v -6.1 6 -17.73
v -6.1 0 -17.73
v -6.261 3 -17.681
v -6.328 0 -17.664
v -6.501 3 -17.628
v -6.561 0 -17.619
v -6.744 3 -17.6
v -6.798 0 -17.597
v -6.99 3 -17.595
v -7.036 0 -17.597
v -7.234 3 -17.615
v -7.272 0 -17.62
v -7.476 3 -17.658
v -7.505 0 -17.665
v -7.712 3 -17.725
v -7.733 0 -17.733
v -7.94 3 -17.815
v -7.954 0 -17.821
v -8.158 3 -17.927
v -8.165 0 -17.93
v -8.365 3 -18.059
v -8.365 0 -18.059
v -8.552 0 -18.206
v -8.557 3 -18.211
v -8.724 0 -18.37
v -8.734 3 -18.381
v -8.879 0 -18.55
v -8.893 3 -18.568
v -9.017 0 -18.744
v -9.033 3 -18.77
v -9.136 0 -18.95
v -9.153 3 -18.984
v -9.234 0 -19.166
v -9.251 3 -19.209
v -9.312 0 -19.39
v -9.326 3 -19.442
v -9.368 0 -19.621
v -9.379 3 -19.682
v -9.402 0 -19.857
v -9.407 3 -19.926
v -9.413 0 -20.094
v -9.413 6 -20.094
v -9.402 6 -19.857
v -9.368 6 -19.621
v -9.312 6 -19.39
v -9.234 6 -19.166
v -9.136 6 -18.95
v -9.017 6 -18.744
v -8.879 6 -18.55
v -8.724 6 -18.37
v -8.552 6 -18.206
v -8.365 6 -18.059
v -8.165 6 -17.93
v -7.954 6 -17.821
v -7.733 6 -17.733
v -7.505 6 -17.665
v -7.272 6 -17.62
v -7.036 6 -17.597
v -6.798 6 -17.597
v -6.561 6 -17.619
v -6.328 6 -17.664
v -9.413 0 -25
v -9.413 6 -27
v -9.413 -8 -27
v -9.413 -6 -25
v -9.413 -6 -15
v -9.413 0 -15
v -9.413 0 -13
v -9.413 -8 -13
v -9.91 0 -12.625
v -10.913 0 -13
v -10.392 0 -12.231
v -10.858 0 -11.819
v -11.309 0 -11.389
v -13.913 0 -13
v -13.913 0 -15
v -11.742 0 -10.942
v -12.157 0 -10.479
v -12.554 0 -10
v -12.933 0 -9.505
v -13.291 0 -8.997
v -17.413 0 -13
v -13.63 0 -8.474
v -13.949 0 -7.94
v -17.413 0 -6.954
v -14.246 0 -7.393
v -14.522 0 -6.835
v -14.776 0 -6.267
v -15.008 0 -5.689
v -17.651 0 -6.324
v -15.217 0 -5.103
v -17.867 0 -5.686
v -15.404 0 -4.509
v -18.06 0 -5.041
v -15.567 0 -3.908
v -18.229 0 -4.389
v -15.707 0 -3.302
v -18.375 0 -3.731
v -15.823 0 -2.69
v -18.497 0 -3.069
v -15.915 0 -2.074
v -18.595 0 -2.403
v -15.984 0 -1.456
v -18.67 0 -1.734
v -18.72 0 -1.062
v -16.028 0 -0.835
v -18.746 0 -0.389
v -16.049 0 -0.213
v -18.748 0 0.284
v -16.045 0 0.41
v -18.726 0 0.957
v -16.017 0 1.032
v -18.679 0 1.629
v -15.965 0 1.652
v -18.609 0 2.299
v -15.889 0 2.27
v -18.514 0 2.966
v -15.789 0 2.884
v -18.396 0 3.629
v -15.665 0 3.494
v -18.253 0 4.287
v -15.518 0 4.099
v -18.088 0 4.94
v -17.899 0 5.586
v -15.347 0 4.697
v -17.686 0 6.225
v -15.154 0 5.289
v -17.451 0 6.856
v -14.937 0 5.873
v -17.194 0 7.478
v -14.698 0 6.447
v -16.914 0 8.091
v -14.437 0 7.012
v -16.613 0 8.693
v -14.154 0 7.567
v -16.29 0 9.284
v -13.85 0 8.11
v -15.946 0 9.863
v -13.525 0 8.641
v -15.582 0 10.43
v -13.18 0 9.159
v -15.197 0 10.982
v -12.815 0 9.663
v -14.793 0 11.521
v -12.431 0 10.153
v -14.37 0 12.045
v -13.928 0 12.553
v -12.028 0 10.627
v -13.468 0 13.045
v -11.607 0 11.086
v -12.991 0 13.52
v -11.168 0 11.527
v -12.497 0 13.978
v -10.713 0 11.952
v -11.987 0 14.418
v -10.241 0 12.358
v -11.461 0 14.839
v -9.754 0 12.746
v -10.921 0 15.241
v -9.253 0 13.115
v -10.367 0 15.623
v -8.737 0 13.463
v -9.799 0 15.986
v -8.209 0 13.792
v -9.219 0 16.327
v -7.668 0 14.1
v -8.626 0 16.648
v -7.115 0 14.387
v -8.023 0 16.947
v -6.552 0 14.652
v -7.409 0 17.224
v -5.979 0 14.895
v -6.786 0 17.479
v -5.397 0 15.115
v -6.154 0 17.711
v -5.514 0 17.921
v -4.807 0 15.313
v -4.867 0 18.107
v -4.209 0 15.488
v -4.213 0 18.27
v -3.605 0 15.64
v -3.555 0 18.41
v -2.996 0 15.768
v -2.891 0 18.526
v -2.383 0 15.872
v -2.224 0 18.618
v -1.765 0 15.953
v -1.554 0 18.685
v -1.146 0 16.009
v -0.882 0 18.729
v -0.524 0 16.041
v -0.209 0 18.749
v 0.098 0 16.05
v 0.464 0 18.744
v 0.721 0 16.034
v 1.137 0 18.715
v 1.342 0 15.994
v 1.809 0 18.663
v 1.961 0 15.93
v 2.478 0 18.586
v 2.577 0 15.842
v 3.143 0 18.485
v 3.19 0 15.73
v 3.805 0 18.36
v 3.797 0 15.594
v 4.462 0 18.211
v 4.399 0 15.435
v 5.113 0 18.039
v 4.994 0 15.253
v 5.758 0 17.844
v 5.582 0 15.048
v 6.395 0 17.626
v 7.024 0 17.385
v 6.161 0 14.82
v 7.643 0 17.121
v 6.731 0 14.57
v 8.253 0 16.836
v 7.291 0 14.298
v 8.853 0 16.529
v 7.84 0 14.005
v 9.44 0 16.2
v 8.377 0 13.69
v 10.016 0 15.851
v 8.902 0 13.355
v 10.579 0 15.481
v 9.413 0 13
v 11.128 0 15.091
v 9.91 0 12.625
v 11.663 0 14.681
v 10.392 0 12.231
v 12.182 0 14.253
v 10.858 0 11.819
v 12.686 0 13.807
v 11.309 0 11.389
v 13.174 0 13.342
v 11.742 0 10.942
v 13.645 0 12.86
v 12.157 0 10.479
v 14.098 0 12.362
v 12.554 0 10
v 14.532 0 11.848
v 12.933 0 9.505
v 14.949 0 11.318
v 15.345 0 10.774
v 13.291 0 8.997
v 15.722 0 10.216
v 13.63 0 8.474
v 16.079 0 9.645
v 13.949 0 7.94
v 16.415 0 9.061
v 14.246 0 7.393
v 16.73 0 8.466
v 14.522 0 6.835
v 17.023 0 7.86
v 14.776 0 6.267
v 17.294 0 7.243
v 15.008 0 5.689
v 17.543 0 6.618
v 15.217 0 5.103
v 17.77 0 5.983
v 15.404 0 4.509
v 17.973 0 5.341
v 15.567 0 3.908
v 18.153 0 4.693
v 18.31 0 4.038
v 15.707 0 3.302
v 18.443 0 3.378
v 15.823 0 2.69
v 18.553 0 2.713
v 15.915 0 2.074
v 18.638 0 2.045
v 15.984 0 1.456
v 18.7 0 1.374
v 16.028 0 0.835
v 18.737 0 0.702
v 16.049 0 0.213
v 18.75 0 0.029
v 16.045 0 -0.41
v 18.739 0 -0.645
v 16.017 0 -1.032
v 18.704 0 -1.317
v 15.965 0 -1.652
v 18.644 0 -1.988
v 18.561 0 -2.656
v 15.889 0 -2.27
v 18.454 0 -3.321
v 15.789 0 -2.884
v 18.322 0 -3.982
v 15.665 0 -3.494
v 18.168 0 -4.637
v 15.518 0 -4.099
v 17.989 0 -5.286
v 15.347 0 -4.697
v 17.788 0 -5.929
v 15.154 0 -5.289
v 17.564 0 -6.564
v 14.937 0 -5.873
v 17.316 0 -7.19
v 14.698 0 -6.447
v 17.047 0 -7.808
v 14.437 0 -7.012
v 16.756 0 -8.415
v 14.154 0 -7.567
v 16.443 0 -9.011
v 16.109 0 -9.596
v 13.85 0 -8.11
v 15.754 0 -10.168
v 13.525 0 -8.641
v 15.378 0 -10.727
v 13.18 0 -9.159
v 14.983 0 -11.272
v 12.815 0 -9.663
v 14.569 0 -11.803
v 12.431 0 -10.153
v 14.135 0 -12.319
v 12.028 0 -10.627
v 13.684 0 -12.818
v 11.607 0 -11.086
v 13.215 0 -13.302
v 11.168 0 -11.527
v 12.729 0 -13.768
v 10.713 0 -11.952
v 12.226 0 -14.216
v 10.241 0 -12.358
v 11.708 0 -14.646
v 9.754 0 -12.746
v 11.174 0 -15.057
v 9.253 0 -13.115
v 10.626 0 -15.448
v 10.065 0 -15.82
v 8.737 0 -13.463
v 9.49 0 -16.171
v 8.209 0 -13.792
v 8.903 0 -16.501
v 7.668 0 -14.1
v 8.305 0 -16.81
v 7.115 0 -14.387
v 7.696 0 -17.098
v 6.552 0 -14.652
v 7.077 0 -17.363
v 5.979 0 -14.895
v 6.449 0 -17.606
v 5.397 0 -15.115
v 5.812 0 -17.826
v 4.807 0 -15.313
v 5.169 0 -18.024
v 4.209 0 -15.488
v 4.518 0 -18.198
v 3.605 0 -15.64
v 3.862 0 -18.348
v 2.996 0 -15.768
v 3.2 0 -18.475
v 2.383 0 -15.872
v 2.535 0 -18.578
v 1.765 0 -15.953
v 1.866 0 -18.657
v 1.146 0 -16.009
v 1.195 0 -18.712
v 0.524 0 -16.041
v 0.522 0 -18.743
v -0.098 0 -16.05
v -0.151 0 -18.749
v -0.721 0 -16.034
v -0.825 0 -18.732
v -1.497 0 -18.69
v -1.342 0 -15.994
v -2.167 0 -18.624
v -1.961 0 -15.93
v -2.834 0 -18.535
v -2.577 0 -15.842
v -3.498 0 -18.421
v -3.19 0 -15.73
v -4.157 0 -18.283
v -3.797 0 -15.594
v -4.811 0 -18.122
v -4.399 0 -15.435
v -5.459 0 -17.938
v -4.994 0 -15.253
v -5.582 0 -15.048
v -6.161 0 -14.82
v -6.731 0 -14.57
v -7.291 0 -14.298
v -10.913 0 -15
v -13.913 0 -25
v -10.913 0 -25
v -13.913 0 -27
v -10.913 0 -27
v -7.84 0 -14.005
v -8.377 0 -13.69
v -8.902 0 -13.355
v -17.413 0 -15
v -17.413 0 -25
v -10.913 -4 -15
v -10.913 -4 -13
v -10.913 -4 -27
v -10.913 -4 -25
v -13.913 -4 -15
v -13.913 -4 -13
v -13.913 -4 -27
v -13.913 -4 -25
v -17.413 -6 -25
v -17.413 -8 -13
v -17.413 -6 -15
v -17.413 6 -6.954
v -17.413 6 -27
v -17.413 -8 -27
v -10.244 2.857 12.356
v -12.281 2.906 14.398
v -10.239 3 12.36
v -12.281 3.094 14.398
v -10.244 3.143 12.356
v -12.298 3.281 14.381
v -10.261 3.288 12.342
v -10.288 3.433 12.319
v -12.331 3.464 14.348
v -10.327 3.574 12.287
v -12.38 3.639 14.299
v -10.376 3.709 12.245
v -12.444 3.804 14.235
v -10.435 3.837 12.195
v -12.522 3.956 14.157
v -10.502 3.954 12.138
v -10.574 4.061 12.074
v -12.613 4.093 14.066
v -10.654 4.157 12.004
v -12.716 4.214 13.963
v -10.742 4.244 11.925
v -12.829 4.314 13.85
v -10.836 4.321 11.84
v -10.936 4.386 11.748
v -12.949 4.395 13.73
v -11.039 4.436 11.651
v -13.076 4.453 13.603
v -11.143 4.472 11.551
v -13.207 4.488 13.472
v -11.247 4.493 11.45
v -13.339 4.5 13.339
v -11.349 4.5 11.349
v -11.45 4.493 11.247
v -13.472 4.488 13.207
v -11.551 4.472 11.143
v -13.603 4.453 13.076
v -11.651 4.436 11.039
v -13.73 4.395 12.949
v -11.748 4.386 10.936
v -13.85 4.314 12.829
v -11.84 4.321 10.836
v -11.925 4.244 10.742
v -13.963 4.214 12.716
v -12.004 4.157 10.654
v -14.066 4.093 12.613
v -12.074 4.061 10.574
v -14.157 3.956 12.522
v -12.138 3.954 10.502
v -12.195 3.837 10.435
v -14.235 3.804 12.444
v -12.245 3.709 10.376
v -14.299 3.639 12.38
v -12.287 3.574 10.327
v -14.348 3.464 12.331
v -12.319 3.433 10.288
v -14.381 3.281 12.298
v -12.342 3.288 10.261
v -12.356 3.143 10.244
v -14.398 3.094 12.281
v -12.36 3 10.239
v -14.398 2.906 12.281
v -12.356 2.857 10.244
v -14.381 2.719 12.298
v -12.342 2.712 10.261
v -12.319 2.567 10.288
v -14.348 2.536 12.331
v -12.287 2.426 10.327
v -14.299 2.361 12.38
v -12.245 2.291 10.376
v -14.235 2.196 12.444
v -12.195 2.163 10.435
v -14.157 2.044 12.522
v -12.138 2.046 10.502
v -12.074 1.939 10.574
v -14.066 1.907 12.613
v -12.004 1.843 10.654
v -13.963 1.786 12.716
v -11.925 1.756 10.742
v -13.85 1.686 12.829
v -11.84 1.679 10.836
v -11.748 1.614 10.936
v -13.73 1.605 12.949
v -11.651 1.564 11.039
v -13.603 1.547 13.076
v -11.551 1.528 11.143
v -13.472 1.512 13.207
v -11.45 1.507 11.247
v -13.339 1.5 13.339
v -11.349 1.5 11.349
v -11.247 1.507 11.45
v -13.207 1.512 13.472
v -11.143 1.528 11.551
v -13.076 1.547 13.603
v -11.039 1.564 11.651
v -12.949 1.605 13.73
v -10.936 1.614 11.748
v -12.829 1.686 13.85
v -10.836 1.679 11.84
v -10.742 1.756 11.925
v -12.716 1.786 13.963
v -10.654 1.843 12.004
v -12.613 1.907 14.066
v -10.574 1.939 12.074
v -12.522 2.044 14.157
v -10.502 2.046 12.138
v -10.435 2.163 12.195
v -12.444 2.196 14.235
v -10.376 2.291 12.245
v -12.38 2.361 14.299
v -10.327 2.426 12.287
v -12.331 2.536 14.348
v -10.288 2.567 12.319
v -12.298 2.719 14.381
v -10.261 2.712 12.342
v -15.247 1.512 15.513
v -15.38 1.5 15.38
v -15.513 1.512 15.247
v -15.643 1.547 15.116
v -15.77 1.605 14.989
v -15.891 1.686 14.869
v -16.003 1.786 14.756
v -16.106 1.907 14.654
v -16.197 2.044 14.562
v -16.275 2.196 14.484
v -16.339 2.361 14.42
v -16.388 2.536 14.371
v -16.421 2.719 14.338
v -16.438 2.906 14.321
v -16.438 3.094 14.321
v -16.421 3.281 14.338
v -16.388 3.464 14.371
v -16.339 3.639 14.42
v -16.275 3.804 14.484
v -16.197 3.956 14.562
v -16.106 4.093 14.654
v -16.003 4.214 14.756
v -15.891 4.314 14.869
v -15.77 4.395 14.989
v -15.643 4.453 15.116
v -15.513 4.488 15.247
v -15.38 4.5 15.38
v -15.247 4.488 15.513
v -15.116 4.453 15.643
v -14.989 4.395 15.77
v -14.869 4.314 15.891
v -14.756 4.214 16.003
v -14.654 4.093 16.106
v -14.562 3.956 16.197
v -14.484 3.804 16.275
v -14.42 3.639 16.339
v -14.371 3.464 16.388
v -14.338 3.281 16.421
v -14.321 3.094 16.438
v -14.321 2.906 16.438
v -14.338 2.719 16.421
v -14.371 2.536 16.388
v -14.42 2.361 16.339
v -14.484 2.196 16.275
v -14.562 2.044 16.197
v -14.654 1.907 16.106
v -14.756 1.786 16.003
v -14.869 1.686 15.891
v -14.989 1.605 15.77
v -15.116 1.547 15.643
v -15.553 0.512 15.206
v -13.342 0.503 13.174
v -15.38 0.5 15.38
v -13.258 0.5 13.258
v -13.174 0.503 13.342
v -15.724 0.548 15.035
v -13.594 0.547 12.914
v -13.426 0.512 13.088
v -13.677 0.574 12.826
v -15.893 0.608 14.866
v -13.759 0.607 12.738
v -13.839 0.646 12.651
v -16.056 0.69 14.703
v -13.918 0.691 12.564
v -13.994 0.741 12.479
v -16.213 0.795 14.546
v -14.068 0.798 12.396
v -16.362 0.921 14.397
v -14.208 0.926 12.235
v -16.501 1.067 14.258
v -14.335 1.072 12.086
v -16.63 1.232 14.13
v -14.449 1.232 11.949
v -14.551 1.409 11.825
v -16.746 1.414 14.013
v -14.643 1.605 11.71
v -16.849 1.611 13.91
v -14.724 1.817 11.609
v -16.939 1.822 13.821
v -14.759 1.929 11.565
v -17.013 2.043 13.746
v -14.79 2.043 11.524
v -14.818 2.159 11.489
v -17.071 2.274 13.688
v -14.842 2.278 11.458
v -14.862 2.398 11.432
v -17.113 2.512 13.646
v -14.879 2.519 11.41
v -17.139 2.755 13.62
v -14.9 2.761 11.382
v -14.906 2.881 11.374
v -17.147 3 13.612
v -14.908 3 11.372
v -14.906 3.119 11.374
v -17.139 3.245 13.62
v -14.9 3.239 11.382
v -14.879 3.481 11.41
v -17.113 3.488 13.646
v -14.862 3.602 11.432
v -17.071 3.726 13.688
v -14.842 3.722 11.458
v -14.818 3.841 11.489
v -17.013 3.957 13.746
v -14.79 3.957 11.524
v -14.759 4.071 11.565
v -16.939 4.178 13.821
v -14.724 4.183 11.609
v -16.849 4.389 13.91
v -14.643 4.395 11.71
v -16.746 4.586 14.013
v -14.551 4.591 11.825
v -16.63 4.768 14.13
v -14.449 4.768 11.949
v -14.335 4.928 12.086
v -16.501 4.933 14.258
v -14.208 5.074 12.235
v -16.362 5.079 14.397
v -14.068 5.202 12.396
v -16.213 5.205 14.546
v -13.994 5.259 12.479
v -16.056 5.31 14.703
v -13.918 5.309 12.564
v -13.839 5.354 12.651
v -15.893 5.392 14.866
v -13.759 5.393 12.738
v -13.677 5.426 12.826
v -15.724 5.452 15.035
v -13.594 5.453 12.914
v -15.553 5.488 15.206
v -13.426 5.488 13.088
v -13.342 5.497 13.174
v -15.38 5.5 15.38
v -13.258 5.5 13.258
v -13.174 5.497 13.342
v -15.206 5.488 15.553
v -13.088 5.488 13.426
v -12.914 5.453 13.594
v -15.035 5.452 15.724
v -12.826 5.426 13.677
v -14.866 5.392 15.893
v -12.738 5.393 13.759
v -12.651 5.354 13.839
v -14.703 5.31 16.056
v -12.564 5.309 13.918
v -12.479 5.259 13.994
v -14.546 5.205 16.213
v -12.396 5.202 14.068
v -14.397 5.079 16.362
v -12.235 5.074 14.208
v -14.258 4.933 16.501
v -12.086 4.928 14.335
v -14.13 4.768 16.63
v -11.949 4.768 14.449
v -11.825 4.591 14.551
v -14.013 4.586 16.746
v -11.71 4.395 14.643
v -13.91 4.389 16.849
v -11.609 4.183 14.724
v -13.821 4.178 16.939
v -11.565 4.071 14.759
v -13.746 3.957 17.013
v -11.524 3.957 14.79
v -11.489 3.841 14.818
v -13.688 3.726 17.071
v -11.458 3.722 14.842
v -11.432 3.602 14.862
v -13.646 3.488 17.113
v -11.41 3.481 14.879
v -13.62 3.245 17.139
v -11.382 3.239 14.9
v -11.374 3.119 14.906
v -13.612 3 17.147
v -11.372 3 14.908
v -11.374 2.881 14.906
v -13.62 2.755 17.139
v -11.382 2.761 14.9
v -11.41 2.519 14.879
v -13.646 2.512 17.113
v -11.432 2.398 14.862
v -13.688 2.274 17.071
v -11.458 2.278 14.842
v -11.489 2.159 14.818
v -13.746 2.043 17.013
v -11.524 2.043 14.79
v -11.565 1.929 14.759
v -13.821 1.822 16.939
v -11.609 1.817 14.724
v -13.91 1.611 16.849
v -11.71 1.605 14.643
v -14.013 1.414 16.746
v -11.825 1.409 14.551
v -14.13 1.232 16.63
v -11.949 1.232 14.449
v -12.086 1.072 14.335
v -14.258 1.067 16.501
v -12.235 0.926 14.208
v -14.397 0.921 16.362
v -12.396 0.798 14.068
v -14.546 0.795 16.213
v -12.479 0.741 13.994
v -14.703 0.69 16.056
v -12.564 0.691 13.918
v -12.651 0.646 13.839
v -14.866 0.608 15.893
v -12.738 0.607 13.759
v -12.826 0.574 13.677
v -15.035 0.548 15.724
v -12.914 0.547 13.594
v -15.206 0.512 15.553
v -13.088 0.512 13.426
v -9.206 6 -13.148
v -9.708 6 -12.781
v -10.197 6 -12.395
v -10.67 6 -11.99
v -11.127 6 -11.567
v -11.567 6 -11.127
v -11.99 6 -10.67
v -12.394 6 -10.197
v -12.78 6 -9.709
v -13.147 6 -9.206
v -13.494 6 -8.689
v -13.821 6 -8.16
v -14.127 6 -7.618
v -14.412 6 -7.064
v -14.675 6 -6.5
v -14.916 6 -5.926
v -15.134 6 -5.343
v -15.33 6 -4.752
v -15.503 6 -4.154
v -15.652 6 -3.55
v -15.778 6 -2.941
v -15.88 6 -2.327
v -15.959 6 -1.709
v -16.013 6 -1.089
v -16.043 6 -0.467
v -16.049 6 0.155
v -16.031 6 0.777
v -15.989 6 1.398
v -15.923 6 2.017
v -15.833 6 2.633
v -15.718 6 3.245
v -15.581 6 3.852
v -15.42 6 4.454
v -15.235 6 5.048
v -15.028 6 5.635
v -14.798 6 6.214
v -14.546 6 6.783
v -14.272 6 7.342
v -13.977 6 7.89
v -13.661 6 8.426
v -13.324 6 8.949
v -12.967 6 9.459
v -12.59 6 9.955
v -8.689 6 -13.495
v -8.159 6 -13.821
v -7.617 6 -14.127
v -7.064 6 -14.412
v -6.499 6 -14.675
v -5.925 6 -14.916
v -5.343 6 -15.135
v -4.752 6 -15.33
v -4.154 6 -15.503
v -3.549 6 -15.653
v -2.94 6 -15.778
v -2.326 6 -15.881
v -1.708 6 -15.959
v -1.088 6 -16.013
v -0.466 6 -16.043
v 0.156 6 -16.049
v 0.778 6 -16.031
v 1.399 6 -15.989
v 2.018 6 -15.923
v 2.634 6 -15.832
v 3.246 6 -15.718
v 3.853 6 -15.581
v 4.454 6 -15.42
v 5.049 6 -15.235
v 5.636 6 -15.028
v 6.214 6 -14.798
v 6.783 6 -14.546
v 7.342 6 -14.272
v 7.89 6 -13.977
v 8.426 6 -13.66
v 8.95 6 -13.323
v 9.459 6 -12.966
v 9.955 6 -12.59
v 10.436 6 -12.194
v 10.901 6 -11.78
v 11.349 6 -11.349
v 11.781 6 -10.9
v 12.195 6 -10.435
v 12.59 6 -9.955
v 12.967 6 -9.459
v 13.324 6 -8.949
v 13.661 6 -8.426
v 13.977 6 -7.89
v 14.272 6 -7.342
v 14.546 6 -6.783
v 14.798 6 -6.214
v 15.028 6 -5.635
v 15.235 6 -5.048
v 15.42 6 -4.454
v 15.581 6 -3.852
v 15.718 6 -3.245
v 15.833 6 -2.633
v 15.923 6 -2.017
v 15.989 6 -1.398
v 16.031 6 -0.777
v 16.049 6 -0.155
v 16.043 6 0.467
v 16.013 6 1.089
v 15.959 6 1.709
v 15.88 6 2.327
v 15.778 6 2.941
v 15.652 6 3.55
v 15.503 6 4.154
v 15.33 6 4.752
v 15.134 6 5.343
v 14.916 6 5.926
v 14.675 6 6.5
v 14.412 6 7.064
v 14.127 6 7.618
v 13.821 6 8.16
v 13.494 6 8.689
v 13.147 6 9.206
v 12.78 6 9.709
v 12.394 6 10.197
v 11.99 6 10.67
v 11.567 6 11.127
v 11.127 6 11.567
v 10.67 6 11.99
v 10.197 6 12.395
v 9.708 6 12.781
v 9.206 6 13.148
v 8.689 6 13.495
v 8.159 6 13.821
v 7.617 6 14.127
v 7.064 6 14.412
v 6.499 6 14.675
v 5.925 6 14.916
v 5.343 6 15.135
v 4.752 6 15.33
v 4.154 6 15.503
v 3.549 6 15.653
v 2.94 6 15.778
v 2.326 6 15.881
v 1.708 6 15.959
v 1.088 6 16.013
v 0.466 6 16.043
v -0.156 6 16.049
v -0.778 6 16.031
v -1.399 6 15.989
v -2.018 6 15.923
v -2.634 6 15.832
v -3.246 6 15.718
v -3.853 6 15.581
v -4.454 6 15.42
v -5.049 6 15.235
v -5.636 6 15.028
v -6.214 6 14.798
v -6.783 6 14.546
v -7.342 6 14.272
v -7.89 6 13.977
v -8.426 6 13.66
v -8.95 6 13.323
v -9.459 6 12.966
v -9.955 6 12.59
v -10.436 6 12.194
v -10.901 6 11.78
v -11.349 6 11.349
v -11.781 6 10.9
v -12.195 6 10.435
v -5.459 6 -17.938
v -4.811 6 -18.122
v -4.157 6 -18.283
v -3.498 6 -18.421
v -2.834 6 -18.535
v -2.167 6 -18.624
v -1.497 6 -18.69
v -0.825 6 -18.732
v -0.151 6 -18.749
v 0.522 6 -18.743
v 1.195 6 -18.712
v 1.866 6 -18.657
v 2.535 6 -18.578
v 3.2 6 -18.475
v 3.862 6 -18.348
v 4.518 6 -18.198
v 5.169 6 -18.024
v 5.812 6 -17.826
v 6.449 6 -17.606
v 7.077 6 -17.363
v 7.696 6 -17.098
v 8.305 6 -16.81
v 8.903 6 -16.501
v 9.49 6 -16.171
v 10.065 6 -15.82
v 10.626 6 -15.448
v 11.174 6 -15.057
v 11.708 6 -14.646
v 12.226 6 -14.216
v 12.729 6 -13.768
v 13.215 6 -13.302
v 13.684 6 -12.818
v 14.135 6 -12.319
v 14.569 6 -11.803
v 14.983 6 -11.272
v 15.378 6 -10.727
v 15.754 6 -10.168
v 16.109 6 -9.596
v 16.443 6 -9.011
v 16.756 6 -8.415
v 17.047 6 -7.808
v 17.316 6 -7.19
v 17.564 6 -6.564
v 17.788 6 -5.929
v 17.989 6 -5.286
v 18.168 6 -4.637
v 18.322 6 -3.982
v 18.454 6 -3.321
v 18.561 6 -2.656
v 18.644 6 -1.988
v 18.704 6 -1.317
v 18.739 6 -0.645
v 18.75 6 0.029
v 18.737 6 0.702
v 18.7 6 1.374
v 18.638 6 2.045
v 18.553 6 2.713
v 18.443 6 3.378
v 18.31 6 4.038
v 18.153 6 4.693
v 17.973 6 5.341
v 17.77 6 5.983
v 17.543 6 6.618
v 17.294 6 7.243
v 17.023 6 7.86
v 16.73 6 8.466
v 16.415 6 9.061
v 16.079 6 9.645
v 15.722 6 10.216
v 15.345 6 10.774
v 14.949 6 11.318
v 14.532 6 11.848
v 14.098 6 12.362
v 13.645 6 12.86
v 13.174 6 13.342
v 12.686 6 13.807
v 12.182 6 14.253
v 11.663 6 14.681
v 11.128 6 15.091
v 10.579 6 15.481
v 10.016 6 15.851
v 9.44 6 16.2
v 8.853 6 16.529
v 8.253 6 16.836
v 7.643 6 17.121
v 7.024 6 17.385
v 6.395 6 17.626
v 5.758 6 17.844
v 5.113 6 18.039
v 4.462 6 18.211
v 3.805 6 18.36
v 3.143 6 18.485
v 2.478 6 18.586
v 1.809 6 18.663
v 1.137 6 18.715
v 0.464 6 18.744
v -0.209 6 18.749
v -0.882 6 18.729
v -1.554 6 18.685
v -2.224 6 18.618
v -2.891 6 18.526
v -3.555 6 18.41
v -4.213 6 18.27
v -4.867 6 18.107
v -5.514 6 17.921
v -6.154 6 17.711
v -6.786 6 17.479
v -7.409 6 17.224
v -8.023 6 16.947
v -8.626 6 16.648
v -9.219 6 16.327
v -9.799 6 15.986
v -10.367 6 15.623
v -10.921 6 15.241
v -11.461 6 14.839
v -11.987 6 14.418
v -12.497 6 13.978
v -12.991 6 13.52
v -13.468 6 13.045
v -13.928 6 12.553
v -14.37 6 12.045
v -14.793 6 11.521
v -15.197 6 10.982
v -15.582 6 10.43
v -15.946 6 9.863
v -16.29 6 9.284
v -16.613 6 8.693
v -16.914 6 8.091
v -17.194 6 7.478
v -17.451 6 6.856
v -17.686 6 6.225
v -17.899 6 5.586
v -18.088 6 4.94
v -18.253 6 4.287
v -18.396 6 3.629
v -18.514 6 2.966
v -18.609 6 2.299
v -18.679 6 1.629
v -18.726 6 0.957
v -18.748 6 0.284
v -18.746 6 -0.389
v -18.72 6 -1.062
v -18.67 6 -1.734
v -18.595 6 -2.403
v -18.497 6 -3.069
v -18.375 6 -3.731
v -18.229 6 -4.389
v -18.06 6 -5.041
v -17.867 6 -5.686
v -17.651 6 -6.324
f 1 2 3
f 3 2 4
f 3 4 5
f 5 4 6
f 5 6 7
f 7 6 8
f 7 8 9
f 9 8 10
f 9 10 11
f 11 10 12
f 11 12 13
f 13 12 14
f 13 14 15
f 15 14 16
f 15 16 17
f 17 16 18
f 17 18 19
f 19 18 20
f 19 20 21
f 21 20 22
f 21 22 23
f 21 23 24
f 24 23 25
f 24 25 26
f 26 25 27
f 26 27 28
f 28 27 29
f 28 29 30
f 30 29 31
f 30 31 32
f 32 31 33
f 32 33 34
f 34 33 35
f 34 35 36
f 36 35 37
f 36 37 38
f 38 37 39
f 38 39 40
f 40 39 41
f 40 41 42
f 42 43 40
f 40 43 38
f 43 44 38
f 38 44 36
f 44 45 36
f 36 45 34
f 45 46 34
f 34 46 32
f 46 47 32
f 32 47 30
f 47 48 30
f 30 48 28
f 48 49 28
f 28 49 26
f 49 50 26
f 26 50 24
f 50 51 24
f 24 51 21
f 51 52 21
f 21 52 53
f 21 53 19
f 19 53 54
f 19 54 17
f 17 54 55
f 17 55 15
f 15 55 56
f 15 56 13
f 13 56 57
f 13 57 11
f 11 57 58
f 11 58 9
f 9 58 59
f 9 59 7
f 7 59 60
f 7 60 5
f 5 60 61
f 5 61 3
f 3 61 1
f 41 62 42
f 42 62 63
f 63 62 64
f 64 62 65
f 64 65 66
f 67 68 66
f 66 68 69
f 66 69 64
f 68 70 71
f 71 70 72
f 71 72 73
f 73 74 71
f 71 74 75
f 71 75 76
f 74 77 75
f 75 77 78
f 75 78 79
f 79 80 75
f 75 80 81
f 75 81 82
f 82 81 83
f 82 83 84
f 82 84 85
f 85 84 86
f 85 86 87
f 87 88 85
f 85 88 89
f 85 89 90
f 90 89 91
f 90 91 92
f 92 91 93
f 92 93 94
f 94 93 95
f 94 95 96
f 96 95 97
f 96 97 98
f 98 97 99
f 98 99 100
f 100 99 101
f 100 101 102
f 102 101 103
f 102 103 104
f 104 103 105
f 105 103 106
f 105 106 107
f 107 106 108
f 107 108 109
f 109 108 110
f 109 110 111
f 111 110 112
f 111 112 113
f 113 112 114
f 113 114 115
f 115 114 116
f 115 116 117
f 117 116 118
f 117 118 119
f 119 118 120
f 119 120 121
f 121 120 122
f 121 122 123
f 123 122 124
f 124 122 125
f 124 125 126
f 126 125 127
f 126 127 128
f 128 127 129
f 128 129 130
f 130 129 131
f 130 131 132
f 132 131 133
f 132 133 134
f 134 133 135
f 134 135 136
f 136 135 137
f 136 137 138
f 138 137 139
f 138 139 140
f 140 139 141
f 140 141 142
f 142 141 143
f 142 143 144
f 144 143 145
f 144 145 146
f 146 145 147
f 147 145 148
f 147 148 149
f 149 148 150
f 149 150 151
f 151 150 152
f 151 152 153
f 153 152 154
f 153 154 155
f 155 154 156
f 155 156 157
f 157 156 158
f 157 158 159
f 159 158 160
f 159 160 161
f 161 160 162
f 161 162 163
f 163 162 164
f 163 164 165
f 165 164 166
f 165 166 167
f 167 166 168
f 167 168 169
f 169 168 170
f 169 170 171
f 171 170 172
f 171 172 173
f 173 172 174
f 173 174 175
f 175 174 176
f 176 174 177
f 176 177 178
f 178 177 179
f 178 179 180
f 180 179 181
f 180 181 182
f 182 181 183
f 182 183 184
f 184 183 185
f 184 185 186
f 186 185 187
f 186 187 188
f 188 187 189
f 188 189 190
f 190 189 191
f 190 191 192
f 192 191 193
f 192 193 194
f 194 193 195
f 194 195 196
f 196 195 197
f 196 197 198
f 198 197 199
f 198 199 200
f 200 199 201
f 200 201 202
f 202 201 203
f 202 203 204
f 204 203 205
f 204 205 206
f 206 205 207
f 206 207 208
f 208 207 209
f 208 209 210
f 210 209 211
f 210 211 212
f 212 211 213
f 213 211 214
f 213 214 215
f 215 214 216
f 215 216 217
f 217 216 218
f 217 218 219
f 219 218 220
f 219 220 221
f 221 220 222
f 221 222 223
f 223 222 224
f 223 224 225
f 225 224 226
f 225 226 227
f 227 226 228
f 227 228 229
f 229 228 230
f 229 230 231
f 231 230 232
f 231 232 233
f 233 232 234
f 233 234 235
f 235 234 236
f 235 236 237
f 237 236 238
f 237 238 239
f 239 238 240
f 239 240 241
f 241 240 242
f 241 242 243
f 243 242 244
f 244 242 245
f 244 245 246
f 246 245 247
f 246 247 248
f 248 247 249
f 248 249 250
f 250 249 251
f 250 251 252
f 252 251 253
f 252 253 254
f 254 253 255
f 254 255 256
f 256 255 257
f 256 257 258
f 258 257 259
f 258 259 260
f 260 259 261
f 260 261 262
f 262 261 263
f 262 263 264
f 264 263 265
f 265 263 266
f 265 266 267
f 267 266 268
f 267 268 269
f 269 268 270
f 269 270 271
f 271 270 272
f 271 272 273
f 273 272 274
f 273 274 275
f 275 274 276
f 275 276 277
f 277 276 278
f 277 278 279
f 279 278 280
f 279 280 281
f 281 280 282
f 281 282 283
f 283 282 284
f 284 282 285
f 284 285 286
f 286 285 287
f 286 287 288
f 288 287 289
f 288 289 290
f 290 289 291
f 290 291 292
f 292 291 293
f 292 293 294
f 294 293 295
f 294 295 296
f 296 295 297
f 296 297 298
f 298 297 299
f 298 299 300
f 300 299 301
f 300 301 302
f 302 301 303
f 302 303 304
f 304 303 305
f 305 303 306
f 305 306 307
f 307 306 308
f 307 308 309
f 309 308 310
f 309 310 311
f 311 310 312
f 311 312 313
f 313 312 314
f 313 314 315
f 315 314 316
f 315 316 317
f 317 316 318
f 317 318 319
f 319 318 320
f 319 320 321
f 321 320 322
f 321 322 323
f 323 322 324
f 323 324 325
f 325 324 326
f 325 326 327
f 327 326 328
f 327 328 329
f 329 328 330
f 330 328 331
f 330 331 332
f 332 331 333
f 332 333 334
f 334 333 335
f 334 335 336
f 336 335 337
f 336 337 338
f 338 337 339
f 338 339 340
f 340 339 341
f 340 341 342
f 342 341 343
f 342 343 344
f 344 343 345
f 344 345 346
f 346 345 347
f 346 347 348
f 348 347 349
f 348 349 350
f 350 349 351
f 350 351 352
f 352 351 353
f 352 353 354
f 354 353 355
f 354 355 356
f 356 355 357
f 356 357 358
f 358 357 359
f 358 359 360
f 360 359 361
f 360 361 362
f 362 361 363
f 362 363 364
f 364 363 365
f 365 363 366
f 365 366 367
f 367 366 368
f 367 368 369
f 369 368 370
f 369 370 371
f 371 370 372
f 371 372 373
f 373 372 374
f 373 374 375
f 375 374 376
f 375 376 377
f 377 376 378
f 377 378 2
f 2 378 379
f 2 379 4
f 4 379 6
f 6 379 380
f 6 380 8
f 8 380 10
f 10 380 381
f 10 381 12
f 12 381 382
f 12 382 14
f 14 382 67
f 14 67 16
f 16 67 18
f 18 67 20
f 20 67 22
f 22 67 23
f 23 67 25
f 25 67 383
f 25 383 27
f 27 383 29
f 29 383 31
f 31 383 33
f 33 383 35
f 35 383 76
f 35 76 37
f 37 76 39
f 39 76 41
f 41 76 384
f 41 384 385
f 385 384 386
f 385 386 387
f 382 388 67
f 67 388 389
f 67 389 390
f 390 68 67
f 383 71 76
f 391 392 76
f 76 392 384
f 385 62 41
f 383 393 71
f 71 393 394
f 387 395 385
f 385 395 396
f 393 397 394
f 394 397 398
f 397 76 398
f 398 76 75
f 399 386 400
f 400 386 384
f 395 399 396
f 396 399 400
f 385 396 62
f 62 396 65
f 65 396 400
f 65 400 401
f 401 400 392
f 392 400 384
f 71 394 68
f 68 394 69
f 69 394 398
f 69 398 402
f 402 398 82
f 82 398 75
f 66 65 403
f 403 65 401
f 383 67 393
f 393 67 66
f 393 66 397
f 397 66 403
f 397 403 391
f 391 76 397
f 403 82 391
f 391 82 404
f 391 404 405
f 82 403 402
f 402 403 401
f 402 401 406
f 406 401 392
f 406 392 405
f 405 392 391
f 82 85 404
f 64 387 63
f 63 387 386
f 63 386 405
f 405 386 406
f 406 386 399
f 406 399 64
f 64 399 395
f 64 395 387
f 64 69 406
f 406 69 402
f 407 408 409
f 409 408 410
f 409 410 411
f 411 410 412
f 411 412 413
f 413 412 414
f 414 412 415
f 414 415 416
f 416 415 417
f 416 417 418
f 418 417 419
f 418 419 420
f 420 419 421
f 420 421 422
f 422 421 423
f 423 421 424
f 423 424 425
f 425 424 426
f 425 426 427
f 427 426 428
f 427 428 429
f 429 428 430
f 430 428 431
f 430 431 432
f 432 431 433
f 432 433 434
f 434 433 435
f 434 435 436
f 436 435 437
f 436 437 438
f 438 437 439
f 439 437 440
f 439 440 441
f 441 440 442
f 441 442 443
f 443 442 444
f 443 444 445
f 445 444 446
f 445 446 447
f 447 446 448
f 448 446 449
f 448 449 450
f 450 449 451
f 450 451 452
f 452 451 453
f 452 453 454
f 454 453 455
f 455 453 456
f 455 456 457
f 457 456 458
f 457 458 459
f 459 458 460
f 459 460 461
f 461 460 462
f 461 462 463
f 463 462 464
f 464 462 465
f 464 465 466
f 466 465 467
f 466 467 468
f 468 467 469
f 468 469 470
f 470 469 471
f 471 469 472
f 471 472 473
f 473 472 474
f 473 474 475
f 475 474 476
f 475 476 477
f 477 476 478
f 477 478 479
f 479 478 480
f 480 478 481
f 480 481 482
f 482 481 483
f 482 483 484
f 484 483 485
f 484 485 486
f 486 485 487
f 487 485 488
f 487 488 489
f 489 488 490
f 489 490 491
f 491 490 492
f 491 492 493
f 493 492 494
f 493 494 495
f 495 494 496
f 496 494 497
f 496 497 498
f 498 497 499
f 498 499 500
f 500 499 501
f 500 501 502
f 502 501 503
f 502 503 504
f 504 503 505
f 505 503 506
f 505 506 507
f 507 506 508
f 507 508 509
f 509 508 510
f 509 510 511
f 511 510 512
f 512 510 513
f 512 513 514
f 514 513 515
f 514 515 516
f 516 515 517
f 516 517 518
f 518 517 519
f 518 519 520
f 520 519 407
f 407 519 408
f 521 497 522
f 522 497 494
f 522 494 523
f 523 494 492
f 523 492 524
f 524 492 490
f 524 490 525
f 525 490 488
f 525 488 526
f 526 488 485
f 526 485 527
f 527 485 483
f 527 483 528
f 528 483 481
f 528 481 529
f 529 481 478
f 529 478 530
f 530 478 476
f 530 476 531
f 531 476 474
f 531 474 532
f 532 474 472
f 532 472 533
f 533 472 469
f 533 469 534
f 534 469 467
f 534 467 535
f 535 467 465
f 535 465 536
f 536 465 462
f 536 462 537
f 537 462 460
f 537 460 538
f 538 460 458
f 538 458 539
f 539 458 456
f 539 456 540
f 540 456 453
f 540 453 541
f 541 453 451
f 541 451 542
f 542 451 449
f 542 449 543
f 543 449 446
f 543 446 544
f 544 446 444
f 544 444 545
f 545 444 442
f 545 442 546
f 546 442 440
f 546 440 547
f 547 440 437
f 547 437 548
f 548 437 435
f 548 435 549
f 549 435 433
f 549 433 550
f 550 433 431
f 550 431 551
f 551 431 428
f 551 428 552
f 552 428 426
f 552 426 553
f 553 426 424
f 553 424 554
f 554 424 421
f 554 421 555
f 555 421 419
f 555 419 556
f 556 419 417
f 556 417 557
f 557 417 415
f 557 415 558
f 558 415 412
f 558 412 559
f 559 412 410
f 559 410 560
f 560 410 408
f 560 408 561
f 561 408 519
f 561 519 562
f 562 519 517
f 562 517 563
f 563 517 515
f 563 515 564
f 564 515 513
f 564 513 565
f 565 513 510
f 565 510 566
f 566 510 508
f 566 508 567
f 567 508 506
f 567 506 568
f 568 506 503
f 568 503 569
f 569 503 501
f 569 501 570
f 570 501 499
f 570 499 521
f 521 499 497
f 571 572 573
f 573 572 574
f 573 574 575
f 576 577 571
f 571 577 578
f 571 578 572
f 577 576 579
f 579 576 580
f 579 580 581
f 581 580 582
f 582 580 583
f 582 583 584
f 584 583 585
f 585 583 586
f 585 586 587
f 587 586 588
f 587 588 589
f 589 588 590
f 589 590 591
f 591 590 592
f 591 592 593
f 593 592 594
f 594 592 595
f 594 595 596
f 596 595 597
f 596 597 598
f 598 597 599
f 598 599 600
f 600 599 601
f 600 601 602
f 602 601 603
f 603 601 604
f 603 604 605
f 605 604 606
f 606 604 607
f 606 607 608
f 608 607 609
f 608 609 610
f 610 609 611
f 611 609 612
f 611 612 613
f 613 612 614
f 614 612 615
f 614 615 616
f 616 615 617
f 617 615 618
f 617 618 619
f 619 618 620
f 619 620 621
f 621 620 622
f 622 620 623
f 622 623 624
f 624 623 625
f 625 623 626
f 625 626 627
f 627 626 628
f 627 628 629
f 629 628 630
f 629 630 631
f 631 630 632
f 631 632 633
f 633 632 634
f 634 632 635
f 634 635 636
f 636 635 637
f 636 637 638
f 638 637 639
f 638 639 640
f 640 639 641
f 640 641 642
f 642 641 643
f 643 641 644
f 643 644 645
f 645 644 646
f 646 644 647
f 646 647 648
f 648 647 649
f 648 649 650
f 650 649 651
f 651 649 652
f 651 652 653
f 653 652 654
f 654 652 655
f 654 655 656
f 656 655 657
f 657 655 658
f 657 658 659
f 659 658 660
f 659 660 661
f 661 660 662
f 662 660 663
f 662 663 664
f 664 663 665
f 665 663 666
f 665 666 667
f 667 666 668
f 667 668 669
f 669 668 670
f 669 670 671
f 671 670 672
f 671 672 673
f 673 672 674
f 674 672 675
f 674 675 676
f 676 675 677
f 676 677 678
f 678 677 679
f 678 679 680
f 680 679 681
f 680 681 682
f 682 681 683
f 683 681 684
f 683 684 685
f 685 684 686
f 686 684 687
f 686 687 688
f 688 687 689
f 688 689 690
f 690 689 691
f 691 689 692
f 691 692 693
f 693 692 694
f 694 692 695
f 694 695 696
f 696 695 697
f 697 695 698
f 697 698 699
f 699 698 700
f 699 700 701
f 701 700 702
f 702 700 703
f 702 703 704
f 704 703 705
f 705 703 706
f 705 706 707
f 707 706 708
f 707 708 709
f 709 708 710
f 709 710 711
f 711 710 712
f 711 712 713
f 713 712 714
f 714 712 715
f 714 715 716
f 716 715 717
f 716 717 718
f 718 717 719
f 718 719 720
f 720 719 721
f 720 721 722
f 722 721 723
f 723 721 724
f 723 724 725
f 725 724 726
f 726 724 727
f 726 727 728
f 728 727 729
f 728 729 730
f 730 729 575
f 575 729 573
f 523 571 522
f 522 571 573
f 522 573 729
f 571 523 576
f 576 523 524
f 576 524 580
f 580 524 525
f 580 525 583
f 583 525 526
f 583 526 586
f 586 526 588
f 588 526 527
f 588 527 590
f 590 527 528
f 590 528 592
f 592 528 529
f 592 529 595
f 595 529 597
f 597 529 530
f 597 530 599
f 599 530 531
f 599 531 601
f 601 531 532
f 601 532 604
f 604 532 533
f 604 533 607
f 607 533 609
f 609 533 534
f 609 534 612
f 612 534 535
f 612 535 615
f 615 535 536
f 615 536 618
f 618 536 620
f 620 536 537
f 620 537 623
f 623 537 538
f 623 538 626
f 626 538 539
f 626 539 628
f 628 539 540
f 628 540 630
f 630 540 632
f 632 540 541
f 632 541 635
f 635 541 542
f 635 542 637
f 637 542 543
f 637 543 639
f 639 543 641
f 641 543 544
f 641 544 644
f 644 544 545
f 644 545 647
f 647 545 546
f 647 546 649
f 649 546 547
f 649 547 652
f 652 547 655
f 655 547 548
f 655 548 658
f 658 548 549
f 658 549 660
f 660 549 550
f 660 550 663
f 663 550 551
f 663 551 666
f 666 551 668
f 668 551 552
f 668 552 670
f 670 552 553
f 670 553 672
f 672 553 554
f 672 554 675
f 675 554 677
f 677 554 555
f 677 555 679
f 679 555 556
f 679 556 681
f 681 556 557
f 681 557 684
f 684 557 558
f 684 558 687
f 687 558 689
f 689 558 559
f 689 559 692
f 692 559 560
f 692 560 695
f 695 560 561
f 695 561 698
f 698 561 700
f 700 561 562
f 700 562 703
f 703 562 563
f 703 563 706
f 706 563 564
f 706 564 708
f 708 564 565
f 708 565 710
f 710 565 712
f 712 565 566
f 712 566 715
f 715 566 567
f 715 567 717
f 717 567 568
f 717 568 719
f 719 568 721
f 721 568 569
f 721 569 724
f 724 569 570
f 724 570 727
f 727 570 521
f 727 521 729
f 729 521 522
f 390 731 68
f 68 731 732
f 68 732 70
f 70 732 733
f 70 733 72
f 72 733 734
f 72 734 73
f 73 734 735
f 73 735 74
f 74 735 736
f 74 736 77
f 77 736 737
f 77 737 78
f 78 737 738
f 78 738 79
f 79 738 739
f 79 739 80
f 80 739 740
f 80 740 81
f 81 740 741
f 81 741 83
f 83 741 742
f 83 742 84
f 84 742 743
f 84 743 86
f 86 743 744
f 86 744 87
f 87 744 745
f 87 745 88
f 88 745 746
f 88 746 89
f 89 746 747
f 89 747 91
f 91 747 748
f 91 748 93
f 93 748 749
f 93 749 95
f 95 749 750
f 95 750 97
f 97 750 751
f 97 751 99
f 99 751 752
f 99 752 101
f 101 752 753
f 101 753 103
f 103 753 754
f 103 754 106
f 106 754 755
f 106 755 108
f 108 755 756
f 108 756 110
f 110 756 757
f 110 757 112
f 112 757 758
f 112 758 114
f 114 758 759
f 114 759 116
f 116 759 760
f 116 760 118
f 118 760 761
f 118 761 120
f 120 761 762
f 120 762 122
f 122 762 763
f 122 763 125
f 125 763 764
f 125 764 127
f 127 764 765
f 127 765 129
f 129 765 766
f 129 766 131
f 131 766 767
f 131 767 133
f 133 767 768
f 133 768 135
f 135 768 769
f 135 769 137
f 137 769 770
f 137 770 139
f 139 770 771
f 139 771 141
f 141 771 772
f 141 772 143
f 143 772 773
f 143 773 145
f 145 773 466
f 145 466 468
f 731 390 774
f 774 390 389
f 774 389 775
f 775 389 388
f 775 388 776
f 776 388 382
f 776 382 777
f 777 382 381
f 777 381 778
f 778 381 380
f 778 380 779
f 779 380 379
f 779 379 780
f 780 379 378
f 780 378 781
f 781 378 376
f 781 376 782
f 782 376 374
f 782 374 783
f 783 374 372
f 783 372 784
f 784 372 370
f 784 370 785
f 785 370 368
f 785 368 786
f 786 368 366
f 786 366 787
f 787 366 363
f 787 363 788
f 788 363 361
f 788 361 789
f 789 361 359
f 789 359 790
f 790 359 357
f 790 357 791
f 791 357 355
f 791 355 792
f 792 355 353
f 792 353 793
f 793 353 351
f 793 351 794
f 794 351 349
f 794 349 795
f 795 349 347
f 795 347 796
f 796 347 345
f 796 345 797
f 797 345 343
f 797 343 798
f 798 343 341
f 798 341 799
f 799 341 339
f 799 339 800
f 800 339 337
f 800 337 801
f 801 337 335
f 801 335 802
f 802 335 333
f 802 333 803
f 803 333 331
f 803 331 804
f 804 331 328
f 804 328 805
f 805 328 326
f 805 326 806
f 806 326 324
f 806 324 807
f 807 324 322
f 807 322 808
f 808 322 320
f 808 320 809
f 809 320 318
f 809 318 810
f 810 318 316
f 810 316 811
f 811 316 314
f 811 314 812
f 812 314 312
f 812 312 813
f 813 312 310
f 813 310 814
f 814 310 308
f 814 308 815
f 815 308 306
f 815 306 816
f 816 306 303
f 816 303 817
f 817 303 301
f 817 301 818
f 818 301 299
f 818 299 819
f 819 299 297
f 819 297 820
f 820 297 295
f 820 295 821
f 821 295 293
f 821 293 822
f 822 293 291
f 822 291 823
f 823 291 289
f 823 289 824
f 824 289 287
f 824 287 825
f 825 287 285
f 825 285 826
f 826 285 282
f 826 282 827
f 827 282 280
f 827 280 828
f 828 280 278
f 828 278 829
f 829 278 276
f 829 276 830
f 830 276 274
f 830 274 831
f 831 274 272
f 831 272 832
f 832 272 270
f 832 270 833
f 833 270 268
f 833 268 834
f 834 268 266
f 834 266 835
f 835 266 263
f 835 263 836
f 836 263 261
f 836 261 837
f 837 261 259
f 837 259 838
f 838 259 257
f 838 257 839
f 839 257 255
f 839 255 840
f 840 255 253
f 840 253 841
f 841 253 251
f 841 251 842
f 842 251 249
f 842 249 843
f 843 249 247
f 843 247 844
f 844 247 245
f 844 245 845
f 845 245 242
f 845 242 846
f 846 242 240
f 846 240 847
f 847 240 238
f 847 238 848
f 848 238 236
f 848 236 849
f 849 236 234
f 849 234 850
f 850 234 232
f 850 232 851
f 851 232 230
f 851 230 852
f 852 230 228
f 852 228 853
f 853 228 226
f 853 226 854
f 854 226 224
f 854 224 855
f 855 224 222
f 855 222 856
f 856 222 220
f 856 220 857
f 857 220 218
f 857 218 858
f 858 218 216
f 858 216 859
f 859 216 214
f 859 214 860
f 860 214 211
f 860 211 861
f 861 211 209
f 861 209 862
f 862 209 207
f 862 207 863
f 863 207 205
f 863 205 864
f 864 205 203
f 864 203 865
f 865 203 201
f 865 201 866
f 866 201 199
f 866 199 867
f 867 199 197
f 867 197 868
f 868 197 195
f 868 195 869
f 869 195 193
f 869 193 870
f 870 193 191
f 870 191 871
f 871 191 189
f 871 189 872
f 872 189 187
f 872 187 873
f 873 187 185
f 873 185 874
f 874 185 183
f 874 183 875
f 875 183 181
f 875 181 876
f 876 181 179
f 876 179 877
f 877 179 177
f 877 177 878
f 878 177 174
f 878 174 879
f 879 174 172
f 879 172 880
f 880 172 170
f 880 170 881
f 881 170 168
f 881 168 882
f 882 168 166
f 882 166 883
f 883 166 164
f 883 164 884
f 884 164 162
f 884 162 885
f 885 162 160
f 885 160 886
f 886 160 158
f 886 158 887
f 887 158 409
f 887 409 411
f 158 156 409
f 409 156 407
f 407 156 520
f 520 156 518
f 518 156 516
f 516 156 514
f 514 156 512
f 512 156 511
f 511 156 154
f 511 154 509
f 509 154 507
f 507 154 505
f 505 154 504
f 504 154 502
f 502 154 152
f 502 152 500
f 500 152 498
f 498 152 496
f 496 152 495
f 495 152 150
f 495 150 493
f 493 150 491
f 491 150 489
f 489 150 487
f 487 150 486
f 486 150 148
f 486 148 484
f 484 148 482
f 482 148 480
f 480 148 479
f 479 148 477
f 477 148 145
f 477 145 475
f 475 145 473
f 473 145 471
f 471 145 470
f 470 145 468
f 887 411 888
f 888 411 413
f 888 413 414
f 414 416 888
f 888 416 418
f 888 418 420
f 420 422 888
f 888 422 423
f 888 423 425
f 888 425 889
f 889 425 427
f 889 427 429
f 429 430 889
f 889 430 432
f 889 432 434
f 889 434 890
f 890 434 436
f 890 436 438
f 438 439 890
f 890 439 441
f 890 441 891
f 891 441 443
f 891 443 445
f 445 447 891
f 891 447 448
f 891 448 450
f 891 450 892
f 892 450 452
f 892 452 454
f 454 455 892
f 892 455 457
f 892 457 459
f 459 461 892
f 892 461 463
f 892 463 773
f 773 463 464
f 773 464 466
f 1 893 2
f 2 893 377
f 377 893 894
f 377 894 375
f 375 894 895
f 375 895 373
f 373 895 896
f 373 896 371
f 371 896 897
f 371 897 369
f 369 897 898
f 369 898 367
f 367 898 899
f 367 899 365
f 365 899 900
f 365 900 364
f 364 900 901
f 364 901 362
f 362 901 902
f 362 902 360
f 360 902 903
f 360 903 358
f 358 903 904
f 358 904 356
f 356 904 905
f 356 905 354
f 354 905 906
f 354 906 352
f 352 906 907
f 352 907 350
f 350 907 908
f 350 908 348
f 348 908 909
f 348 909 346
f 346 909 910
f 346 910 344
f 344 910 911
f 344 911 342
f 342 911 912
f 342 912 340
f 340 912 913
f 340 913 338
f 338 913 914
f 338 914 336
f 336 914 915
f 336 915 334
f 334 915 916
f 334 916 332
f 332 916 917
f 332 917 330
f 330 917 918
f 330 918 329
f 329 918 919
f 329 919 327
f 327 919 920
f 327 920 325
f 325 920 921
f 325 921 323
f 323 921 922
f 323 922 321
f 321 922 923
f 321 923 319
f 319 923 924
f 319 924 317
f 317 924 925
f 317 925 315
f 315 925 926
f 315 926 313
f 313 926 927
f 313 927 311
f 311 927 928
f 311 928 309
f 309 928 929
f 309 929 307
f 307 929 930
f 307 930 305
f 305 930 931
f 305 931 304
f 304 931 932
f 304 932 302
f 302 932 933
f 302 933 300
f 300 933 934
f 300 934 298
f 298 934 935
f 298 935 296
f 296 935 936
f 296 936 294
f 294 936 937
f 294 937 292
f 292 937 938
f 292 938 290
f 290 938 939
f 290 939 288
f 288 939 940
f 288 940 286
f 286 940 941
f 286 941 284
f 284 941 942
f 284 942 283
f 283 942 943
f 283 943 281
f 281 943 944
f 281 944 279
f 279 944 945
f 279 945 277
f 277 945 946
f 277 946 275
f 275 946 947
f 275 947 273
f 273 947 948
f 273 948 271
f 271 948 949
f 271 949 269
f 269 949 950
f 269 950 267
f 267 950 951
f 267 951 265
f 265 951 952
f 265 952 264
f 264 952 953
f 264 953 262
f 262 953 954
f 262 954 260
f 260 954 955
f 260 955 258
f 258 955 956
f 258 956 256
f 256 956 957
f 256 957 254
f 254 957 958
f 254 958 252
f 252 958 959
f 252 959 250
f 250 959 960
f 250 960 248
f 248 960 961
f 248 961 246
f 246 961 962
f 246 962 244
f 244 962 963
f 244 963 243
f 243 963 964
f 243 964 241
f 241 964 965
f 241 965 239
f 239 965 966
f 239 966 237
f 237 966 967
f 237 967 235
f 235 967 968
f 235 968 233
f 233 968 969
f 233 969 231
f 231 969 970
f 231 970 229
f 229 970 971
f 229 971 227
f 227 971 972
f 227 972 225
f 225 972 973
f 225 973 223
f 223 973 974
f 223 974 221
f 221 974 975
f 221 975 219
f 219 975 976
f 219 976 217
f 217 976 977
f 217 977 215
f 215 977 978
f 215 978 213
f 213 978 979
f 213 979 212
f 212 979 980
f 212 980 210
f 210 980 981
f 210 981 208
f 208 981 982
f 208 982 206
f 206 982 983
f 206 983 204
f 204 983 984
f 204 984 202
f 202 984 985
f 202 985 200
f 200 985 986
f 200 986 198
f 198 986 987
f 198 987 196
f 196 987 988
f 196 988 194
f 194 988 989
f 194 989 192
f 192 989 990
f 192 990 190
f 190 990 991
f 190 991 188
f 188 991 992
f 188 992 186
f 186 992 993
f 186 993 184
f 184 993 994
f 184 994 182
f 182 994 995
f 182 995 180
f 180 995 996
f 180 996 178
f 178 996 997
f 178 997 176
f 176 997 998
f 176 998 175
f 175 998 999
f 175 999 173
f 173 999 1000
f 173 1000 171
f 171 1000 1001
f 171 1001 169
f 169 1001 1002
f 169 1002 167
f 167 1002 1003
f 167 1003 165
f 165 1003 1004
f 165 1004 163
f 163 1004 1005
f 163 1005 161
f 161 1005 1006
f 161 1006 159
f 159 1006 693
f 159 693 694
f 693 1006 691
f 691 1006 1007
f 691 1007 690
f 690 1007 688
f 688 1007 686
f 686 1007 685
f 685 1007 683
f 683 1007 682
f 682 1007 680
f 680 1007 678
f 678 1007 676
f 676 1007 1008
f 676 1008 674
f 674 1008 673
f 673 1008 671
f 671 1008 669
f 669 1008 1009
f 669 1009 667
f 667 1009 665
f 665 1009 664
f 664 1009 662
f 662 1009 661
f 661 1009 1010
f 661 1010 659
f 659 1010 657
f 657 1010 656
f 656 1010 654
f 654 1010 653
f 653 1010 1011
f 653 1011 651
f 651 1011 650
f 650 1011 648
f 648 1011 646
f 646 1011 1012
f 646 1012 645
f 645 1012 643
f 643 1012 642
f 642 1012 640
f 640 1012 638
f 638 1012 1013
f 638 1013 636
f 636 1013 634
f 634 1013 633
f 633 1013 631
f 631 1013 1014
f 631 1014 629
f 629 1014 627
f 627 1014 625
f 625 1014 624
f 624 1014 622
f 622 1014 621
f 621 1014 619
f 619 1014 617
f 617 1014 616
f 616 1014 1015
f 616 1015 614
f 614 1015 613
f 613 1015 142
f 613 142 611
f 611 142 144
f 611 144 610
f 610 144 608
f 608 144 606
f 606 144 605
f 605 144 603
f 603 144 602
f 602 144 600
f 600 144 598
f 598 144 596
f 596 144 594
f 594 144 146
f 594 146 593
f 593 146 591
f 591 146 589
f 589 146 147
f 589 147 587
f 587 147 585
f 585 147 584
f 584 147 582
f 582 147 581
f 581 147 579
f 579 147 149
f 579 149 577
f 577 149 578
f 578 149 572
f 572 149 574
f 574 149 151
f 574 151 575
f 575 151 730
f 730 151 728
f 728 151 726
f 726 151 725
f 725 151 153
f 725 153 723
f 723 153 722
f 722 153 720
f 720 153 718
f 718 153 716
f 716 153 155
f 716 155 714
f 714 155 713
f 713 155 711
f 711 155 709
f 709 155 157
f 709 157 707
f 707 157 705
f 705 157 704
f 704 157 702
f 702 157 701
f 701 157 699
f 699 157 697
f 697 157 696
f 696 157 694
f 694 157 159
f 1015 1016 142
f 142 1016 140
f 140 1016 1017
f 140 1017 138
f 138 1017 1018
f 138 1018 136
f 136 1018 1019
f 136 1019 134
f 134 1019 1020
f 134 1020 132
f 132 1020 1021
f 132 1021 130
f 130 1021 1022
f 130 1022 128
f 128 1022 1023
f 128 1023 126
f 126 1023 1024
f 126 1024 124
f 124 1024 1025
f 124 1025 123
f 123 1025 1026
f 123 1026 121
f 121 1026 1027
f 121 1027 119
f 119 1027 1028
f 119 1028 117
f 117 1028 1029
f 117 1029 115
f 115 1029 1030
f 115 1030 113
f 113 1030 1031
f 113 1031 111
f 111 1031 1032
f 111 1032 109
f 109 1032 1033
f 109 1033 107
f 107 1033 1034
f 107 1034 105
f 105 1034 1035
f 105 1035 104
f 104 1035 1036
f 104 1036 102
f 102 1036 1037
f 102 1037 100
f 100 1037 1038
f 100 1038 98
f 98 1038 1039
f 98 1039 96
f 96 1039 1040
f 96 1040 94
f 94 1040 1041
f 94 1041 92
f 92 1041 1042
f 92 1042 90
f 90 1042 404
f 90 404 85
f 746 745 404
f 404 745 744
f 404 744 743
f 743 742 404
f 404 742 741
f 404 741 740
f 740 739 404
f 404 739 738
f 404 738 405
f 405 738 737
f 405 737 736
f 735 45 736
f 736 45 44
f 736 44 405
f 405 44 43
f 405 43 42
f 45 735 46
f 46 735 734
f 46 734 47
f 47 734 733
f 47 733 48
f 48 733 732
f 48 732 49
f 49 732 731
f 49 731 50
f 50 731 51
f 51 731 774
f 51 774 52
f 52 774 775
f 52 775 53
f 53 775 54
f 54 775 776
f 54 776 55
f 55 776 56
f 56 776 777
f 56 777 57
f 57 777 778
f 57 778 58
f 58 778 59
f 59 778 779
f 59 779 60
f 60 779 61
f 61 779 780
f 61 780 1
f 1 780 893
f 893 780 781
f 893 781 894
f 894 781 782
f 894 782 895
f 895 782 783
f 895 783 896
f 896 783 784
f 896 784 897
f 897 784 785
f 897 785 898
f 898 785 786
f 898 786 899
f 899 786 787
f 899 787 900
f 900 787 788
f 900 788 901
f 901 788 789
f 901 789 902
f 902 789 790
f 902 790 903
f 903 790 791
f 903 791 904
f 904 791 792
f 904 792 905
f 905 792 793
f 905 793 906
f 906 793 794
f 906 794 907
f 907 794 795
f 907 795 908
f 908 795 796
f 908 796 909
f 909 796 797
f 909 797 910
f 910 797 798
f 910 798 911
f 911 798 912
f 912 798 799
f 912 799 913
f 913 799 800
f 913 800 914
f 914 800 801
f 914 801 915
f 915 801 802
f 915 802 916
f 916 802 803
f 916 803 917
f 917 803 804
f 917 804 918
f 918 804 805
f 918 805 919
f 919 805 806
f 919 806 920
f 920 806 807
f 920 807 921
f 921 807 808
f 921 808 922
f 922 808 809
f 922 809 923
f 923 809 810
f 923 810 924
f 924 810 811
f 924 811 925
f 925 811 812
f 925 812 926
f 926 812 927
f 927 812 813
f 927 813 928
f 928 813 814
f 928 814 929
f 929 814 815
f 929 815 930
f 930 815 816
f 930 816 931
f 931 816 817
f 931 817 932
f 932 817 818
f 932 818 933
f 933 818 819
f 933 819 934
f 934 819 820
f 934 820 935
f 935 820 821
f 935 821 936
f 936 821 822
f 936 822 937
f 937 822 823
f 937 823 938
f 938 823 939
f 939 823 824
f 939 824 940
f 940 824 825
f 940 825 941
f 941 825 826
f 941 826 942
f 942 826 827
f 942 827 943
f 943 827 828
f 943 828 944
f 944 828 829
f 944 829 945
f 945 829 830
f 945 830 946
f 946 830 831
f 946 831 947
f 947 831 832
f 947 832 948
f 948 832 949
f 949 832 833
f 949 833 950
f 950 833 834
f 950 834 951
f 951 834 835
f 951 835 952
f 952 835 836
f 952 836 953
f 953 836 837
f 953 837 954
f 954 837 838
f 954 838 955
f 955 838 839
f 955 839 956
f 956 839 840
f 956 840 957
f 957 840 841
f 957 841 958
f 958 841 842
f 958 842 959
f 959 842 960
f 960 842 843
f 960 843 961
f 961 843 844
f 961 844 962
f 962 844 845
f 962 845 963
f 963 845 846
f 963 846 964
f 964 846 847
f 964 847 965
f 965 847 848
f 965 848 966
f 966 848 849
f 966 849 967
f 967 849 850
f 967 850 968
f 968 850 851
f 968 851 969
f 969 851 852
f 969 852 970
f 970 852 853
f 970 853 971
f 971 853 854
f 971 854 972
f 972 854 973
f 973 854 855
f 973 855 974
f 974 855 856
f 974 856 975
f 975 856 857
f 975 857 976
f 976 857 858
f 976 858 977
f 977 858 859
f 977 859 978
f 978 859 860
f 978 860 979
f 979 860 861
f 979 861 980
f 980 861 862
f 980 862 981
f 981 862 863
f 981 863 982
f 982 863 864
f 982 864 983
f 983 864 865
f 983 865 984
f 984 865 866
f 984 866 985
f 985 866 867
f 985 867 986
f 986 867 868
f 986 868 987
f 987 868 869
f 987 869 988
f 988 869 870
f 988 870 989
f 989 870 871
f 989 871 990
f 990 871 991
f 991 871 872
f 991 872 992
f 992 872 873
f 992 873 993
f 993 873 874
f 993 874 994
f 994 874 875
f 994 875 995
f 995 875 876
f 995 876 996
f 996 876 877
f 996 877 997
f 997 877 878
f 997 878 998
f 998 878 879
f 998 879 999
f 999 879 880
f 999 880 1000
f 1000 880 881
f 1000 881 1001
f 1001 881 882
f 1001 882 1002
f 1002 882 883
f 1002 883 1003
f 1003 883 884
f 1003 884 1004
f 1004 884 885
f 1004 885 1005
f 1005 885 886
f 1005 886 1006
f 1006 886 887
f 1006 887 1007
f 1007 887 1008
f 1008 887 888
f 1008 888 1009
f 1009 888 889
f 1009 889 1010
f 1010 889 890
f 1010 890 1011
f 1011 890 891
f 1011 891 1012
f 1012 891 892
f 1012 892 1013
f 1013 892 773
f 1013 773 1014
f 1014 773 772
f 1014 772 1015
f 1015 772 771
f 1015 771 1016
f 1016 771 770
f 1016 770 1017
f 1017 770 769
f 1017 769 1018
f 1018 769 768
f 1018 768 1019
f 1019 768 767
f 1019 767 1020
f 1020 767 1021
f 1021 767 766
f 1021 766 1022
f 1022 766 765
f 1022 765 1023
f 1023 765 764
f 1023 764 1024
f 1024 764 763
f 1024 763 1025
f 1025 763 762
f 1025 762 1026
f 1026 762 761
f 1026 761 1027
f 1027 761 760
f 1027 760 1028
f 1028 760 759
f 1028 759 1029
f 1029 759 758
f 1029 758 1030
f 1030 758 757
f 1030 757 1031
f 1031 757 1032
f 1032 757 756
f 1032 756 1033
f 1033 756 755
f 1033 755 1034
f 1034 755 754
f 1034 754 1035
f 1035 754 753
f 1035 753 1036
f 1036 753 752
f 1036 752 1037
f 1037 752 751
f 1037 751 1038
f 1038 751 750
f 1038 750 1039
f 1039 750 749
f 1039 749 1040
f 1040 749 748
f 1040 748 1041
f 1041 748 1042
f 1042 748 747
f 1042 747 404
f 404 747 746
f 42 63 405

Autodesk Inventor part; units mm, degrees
ref_plane "YZ Plane" through (0, 0, 0) normal (1, 0, 0) x (0, 1, 0)
ref_plane "XZ Plane" through (0, 0, 0) normal (0, 1, 0) x (-1, 0, 0)
sketch "Sketch1" plane through (0, 0, 0) normal (0, 1, 0) x (-1, 0, 0)
  circle A0 centre (0, 0) radius 16.05
  circle A1 centre (0, 0) radius 18.75
  point P0 (18.75, 0)
  point P1 (13.2583, 13.2583)
  dimension "d0" = 32.1
  dimension "d4" = 45
  dimension "d9" = 2.7
extrude "Extrusion1" add sketch "Sketch1" along normal blind 6
ref_plane "Work Plane1" through (-13.2583, 0, 13.2583) normal (-0.7071, 0, 0.7071) x (0, -1, 0)
sketch "Sketch2" plane through (-13.2583, 0, 13.2583) normal (-0.7071, 0, 0.7071) x (0, -1, 0)
  circle A0 centre (-3, 0) radius 1.5
  circle A1 centre (-3, 0) radius 2.5
  point P0 (0, 0)
  dimension "d5" = 3
  dimension "d6" = 5
  dimension "d7" = 3
  dimension "d10" = 0
extrude "Extrusion2" add sketch "Sketch2" along normal mid plane 6
sketch "Sketch3" plane through (-15.3796, 3, 15.3796) normal (-0.7071, 0, 0.7071) x (0.7071, 0, 0.7071)
  circle A0 centre (0, 0) radius 1.5
  point P0 (0, -3)
extrude "Extrusion3" cut sketch "Sketch3" against normal blind 9.75
sketch "Sketch6" plane through (0, 0, 0) normal (0, -1, 0) x (1, 0, 0)
  line L0 (-17.4129, -27) -> (-9.4129, -27)
  line L1 (-9.4129, -27) -> (-9.4129, -13)
  line L2 (-9.4129, -13) -> (-17.4129, -13)
  line L3 (-17.4129, -13) -> (-17.4129, -27)
  circle A0 centre (0, 0) radius 16.05 projected
  point P0 (-13.4129, -27)
  dimension "d15" = 14
  dimension "d16" = 8
  dimension "d34" = 13
extrude "Extrusion4" add sketch "Sketch6" along normal blind 8 contours L3 L2 L1 L0
sketch "Sketch7" plane through (-17.4129, 0, -27) normal (-1, 0, 0) x (0, 0, 1)
  line L0 (12, 0) -> (2, 0)
  line L1 (2, 0) -> (2, -6)
  line L2 (2, -6) -> (12, -6)
  line L3 (12, -6) -> (12, 0)
  line L4 (14, 0) -> (14, -8) projected
  line L5 (14, -8) -> (0, -8) projected
  point P0 (27, 0)
  dimension "d19" = 10
  dimension "d20" = 6
  dimension "d21" = 2
  dimension "d22" = 2
extrude "Extrusion5" cut sketch "Sketch7" against normal blind 10
sketch "Sketch8" plane through (0, 0, -13) normal (0, 0, 1) x (1, 0, 0)
  line L0 (-13.5116, 0) -> (-9.4129, 0) projected
  line L1 (-10.9129, 0) -> (-13.9129, 0)
  line L2 (-13.9129, 0) -> (-13.9129, -4)
  line L3 (-13.9129, -4) -> (-10.9129, -4)
  line L4 (-10.9129, -4) -> (-10.9129, 0)
  line L5 (-9.4129, 0) -> (-9.4129, -8) projected
  line L6 (-17.4129, -6) -> (-9.4129, -6) projected
  point P0 (0, 0)
  point P1 (-4, 0)
  dimension "d25" = 1.5
  dimension "d26" = 3
  dimension "d27" = 2
extrude "Extrusion6" cut sketch "Sketch8" against normal blind 15.25
sketch "Sketch9" plane through (-9.4129, -8, -27) normal (0, 0, -1) x (-1, 0, 0)
  line L0 (6.6371, 8) -> (-25.4629, 8) projected
  line L1 (0, 8) -> (8, 8)
  line L2 (8, 8) -> (8, 14)
  line L3 (8, 14) -> (0, 14)
  line L4 (0, 14) -> (0, 8)
  point P0 (-9.4129, 8)
  dimension "d30" = 6
extrude "Extrusion7" add sketch "Sketch9" against normal blind 20.5
sketch "Sketch10" plane through (0, 0, 0) normal (0, -1, 0) x (1, 0, 0)
  circle A0 centre (0, 0) radius 16.05
  arc A1 (-9.4129, -13) -> (-14.6749, -6.5) centre (0, 0) ccw projected
extrude "Extrusion8" cut sketch "Sketch10" against normal blind 12.5
fillet "Fillet2" radius 2.5 1 edges at (-9.4129, 3, -16.216)
properties part number "DC_Ring"
